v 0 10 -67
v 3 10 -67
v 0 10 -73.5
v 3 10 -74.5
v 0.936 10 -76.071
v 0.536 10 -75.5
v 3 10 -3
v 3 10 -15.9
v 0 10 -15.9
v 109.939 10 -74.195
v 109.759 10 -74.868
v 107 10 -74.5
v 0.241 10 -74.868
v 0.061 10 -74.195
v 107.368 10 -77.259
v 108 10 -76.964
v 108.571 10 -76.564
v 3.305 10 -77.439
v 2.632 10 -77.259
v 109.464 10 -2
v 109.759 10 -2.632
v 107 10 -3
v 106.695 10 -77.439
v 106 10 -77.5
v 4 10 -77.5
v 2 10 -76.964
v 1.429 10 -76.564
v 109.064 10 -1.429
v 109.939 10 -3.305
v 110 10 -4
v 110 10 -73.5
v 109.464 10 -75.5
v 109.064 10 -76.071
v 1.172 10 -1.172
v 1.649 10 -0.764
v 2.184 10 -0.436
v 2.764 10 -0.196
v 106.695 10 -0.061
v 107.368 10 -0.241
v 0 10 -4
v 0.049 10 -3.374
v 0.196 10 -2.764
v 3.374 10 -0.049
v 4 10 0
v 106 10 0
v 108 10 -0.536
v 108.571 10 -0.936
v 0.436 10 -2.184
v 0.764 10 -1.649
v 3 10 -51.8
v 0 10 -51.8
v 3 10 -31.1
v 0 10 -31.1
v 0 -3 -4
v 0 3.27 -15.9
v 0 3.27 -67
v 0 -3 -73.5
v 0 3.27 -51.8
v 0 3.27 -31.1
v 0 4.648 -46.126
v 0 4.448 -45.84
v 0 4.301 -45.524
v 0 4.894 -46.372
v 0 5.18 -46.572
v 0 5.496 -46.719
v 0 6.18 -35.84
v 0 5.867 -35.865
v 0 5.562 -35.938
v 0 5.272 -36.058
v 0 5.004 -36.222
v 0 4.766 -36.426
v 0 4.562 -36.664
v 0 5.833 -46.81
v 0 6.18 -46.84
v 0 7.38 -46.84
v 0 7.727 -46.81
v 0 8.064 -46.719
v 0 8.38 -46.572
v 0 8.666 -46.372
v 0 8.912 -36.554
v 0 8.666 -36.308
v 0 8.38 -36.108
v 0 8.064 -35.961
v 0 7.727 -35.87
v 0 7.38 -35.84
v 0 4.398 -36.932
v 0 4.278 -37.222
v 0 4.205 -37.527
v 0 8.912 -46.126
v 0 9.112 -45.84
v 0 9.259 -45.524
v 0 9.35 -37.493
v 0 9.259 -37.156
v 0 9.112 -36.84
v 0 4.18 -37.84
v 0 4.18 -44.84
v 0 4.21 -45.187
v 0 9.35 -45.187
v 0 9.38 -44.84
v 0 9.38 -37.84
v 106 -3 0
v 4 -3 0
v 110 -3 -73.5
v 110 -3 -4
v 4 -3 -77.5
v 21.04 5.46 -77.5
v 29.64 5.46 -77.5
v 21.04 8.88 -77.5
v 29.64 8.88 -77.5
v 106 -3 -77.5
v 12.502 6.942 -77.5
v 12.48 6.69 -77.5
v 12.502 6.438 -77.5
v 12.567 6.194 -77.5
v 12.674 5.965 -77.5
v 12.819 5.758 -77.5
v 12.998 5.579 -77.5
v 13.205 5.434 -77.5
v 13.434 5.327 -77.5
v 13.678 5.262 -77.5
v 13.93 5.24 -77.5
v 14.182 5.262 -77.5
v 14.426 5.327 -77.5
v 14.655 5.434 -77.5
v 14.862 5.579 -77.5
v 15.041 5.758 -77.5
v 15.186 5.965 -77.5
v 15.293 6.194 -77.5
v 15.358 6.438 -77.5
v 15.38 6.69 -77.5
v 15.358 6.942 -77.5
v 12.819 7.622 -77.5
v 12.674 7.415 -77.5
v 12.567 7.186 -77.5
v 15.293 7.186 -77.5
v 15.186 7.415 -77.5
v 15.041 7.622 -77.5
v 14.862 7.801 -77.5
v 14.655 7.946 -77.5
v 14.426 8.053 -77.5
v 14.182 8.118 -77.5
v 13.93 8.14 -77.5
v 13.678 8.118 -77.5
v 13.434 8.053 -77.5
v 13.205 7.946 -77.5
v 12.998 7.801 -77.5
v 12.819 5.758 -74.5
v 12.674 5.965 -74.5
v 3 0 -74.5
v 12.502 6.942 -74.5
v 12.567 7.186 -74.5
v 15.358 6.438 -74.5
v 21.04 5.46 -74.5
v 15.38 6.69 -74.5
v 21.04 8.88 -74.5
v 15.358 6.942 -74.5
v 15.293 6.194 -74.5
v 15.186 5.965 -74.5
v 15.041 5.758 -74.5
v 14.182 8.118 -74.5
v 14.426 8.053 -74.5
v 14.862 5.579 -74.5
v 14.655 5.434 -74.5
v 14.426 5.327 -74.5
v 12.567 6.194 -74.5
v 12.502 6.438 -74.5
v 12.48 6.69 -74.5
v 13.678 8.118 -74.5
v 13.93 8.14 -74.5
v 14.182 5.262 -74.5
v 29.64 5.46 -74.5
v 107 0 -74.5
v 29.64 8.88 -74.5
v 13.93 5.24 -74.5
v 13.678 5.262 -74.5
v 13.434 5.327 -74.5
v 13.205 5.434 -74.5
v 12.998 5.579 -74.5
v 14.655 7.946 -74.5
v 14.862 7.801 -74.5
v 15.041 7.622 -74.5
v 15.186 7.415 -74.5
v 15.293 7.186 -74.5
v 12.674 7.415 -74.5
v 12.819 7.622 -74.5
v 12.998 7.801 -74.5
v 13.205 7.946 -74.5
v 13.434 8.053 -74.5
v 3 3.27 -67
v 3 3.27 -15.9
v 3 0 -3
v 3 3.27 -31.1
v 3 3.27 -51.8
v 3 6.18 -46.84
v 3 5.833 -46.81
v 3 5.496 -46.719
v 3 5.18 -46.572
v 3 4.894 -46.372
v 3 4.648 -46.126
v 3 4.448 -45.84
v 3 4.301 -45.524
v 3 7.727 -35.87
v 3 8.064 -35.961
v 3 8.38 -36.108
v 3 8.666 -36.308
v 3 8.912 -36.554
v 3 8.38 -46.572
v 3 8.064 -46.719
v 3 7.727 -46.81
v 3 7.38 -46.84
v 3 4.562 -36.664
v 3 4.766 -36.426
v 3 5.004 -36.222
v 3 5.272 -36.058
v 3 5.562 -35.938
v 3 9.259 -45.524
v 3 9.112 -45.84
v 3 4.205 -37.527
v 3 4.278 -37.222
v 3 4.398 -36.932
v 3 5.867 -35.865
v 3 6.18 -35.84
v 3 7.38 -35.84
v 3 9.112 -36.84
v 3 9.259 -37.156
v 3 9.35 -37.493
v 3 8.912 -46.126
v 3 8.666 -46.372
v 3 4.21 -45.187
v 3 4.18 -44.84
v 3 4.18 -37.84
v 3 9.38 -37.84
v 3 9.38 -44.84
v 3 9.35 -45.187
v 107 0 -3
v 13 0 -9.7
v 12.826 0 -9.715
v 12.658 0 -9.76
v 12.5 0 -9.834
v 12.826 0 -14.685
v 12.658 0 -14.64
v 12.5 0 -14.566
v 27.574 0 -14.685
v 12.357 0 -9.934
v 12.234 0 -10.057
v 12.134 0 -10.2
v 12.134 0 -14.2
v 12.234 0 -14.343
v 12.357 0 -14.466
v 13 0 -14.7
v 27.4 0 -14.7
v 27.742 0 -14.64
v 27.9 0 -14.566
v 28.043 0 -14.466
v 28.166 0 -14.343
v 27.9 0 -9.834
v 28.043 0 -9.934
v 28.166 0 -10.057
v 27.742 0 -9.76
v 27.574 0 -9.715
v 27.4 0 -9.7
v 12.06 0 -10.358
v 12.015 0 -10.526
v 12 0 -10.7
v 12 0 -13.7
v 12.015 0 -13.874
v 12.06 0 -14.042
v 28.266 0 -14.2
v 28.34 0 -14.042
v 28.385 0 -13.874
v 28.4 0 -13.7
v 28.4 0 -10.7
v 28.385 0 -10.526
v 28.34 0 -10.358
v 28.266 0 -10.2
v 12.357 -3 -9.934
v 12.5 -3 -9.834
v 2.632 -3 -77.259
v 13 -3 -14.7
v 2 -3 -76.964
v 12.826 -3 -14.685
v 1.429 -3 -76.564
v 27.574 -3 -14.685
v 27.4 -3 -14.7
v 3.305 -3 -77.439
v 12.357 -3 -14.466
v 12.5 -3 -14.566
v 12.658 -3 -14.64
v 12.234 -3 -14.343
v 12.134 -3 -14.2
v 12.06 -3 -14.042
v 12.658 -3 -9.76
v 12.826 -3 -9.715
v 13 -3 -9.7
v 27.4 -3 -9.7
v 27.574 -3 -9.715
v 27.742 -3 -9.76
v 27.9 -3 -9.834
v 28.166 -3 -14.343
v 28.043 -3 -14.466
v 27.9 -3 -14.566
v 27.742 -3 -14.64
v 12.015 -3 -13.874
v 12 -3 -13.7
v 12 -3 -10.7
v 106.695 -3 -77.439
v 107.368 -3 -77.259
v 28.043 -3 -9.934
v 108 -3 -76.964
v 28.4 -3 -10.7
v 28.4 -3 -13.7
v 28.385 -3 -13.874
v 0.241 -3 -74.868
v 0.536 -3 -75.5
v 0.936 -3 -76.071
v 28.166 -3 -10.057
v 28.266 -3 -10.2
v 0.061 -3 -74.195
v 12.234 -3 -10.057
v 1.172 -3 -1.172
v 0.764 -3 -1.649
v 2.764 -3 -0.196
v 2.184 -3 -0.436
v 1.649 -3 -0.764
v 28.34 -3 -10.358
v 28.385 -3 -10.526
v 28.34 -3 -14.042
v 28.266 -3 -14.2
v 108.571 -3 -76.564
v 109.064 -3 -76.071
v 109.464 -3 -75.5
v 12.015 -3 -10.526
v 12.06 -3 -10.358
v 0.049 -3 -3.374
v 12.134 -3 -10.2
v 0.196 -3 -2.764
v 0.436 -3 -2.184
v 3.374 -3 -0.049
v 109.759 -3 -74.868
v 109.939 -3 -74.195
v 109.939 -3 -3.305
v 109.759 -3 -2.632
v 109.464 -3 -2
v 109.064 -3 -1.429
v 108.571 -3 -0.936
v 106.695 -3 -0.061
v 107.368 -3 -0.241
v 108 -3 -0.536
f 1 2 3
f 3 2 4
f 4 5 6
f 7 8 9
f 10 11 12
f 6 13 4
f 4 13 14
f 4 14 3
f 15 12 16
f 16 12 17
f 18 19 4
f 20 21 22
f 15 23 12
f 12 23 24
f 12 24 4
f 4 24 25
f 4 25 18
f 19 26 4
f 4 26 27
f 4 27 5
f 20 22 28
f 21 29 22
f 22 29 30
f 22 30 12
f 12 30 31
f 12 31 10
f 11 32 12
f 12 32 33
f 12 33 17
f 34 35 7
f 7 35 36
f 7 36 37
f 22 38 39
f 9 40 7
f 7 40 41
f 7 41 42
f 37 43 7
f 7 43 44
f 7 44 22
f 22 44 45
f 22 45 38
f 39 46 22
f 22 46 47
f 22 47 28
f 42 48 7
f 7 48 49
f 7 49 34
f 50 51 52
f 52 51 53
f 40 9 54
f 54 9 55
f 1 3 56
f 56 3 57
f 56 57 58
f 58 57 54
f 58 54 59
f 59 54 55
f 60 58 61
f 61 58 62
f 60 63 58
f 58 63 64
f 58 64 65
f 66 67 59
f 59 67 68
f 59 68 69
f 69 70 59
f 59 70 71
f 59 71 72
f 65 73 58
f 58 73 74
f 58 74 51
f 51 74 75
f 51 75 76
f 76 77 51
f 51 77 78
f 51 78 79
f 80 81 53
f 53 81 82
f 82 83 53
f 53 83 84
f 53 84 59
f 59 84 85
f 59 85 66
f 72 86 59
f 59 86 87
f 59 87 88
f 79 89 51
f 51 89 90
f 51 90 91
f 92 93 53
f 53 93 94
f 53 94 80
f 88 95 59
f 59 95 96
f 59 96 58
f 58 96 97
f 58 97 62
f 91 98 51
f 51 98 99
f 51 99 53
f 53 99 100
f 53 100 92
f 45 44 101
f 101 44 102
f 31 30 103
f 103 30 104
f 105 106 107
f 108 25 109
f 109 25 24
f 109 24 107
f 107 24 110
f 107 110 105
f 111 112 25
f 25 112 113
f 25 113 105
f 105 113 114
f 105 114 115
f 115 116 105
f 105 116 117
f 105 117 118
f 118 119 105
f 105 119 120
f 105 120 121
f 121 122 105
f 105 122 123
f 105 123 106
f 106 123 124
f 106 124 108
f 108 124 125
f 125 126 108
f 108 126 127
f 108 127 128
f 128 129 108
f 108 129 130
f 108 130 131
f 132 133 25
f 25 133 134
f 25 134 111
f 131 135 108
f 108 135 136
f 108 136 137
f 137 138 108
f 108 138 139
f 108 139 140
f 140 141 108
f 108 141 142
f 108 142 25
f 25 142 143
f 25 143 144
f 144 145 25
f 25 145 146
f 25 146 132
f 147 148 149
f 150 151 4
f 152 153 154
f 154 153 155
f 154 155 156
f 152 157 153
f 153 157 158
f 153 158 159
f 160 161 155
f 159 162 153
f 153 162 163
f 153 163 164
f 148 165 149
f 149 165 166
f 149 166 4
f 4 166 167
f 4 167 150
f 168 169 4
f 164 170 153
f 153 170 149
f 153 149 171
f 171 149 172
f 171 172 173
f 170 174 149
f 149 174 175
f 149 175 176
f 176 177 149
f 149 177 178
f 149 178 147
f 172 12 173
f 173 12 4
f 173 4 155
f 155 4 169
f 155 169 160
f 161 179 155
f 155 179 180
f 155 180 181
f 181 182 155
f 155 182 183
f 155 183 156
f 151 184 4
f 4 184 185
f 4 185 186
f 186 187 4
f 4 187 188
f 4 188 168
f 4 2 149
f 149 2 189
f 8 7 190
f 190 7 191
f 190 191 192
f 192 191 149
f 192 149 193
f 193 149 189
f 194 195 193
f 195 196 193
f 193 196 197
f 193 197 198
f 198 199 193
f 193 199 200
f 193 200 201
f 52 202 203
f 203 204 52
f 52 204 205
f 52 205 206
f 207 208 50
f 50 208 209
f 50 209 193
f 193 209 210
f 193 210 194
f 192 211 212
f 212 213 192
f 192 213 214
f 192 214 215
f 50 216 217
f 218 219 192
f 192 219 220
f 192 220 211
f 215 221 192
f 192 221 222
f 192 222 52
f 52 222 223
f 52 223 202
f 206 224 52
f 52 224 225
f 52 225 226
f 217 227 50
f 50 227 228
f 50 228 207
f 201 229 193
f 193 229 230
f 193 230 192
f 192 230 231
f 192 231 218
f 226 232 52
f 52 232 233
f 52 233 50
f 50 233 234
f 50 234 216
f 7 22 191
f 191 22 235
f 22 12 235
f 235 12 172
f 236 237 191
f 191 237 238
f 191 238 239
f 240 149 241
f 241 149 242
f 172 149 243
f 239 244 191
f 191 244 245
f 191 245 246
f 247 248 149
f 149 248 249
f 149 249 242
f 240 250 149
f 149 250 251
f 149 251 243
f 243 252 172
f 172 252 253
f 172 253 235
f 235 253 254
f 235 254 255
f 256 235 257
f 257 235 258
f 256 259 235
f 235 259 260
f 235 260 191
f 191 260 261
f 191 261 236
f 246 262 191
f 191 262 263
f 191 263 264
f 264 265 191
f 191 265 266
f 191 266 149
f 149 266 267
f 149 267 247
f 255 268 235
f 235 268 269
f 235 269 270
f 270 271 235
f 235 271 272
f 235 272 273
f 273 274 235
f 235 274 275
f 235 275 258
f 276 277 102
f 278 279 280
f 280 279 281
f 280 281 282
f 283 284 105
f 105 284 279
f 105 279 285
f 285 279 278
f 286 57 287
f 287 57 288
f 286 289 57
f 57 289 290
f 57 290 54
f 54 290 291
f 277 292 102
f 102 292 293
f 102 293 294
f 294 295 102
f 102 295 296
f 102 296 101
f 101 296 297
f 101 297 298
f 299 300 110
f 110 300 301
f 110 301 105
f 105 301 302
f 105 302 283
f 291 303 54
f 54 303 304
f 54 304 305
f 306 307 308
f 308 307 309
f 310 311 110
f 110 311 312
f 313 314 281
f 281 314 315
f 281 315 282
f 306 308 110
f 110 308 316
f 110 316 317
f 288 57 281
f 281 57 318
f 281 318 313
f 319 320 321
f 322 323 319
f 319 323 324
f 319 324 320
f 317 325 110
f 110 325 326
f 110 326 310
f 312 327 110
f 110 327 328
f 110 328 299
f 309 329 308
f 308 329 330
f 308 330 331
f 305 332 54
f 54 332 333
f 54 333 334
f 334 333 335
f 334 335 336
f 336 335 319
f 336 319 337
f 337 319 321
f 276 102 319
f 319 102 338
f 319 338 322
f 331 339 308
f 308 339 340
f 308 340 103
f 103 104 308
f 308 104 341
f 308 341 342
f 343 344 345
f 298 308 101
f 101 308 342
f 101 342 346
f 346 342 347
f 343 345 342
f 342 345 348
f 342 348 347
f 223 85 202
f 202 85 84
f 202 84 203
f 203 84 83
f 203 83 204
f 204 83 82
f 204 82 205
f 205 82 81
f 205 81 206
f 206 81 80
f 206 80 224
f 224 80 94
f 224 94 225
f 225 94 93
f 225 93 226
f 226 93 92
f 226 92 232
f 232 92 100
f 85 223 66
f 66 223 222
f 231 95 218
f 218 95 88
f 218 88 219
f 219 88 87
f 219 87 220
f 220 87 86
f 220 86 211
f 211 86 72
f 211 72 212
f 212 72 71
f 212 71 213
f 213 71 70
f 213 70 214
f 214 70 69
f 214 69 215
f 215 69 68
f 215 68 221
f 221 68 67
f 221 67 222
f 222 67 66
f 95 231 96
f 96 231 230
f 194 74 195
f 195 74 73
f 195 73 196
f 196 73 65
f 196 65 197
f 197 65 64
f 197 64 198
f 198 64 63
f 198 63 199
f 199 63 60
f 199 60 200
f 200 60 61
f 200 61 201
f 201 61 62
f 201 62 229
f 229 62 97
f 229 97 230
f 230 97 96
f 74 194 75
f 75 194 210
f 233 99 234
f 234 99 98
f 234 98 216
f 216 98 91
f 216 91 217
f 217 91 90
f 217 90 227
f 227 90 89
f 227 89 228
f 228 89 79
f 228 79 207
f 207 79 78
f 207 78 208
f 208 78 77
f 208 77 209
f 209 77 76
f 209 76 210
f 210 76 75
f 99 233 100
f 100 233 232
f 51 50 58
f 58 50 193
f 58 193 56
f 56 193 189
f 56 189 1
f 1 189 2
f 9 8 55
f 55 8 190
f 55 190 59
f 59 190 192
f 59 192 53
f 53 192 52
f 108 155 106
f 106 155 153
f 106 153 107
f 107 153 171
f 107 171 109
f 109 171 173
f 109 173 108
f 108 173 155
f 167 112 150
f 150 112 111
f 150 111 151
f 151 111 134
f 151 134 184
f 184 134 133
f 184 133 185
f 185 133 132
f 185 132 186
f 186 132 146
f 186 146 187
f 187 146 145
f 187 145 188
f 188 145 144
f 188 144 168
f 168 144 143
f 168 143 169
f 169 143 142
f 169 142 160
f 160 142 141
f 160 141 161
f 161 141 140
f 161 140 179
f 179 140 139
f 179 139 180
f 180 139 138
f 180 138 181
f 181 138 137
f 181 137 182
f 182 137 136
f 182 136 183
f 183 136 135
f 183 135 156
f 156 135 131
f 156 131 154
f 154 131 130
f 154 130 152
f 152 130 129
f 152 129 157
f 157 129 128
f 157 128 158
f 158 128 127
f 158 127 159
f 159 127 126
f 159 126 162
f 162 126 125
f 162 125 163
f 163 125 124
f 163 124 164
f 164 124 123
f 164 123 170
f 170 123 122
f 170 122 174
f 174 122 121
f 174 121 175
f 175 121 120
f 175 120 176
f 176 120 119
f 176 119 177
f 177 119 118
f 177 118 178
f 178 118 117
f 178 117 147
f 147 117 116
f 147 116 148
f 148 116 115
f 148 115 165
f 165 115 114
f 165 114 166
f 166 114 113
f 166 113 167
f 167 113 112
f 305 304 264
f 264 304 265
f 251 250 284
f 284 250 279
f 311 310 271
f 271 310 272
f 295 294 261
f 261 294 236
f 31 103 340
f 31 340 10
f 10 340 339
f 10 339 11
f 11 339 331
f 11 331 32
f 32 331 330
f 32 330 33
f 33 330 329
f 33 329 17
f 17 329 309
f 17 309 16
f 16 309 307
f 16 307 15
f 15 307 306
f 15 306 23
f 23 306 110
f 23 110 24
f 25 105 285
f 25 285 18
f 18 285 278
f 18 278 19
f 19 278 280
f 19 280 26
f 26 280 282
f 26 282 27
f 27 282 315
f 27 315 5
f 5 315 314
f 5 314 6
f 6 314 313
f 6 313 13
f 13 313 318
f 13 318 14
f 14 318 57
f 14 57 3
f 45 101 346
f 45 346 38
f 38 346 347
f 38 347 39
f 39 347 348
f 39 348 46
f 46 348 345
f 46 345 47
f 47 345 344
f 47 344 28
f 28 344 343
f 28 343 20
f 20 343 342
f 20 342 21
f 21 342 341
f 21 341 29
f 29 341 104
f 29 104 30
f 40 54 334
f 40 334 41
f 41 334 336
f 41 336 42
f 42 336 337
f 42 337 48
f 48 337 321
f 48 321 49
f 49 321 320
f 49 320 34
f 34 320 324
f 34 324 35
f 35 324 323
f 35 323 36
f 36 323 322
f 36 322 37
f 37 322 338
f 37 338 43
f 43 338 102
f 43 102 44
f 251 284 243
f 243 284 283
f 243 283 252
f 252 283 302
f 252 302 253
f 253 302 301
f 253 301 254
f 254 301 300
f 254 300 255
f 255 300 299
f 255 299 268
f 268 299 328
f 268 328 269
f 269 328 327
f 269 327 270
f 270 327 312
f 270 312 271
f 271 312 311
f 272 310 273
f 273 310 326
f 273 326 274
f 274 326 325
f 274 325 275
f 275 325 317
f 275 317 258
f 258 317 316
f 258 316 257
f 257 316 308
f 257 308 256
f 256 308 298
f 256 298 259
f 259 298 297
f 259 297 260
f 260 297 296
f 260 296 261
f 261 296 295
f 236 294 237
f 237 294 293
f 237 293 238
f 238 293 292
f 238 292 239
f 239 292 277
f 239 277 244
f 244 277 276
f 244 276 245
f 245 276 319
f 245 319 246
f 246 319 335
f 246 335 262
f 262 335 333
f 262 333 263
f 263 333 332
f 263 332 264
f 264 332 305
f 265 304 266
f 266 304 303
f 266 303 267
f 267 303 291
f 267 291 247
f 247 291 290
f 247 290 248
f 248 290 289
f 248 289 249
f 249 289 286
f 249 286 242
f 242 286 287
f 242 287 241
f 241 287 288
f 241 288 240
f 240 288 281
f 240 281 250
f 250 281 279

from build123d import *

# Parameters (mm, degrees)
SKETCH1_W               = 110
SKETCH1_H               = 77.5
SKETCH1_W_2             = 104
SKETCH1_H_2             = 71.5
BOSS_EXTRUDE1_DEPTH     = 10
SKETCH1_2_W             = 110
SKETCH1_2_H             = 77.5
BOSS_EXTRUDE2_DEPTH     = 3
CUT_EXTRUDE1_REACH      = 136.931
SKETCH3_W               = 15.2
SKETCH3_H               = 6.73
CUT_EXTRUDE2_REACH      = 136.931
SKETCH4_R               = 1.45
SKETCH4_W               = 8.6
SKETCH4_H               = 3.42
CUT_EXTRUDE3_DEPTH      = 135.930537685
CUT_EXTRUDE3_DEPTH_BACK = 135.930537685
SKETCH5_W               = 16.4
SKETCH5_H               = 5
FILLET1_R               = 4
FILLET2_R               = 1


with BuildPart() as part:
    # Sketch1 → Boss-Extrude1 (new body)
    with BuildSketch(Plane(origin=(0, 0, 0), x_dir=(1, 0, 0), z_dir=(0, 1, 0))):
        with Locations((55, 38.75)):
            Rectangle(SKETCH1_W, SKETCH1_H)
        with Locations((55, 38.75)):
            Rectangle(SKETCH1_W_2, SKETCH1_H_2, mode=Mode.SUBTRACT)
    extrude(amount=BOSS_EXTRUDE1_DEPTH)

    # Sketch1<2> → Boss-Extrude2 (add)
    with BuildSketch(Plane(origin=(0, 0, 0), x_dir=(1, 0, 0), z_dir=(0, 1, 0))):
        with Locations((55, 38.75)):
            Rectangle(SKETCH1_2_W, SKETCH1_2_H)
    extrude(amount=-BOSS_EXTRUDE2_DEPTH)

    # Sketch3 → Cut-Extrude1 (cut, up to next)
    with BuildSketch(Plane.ZY, mode=Mode.PRIVATE) as cut_extrude1_sk1:
        with Locations((-23.5, 6.635)):
            Rectangle(SKETCH3_W, SKETCH3_H)
    cut_extrude1_tool1 = extrude(cut_extrude1_sk1.sketch, amount=-CUT_EXTRUDE1_REACH, mode=Mode.PRIVATE) & part.part
    # Sketch3 → Cut-Extrude1 (cut, up to next)
    with BuildSketch(Plane.ZY, mode=Mode.PRIVATE) as cut_extrude1_sk2:
        with Locations((-59.4, 6.635)):
            Rectangle(SKETCH3_W, SKETCH3_H)
    cut_extrude1_tool2 = extrude(cut_extrude1_sk2.sketch, amount=-CUT_EXTRUDE1_REACH, mode=Mode.PRIVATE) & part.part
    # Sketch3 → Cut-Extrude1 (cut, up to next)
    with BuildSketch(Plane.ZY, mode=Mode.PRIVATE) as cut_extrude1_sk3:
        with BuildLine():
            Line((-37.84, 9.38), (-44.840000134, 9.38))
            ThreePointArc((-44.840000134, 9.38), (-46.254213696, 8.794213562), (-46.840000134, 7.38))
            Line((-46.840000134, 7.38), (-46.840000134, 6.18))
            ThreePointArc((-46.840000134, 6.18), (-46.254213696, 4.765786438), (-44.840000134, 4.18))
            Line((-44.840000134, 4.18), (-37.84, 4.18))
            ThreePointArc((-37.84, 4.18), (-36.425786438, 4.765786438), (-35.84, 6.18))
            Line((-35.84, 6.18), (-35.84, 7.38))
            ThreePointArc((-35.84, 7.38), (-36.425786438, 8.794213562), (-37.84, 9.38))
        make_face()
    cut_extrude1_tool3 = extrude(cut_extrude1_sk3.sketch, amount=-CUT_EXTRUDE1_REACH, mode=Mode.PRIVATE) & part.part
    add(cut_extrude1_tool1.solids().sort_by_distance((0, 6.635, -23.5))[0], mode=Mode.SUBTRACT)
    add(cut_extrude1_tool2.solids().sort_by_distance((0, 6.635, -59.4))[0], mode=Mode.SUBTRACT)
    add(cut_extrude1_tool3.solids().sort_by_distance((0, 6.78, -41.34))[0], mode=Mode.SUBTRACT)

    # Sketch4 → Cut-Extrude2 (cut, up to next)
    with BuildSketch(Plane(origin=(0, 0, -77.5), x_dir=(-1, 0, 0), z_dir=(0, 0, -1)), mode=Mode.PRIVATE) as cut_extrude2_sk1:
        with Locations((-13.93, 6.69)):
            Circle(SKETCH4_R)
    cut_extrude2_tool1 = extrude(cut_extrude2_sk1.sketch, amount=-CUT_EXTRUDE2_REACH, mode=Mode.PRIVATE) & part.part
    # Sketch4 → Cut-Extrude2 (cut, up to next)
    with BuildSketch(Plane(origin=(0, 0, -77.5), x_dir=(-1, 0, 0), z_dir=(0, 0, -1)), mode=Mode.PRIVATE) as cut_extrude2_sk2:
        with Locations((-25.34, 7.17)):
            Rectangle(SKETCH4_W, SKETCH4_H)
    cut_extrude2_tool2 = extrude(cut_extrude2_sk2.sketch, amount=-CUT_EXTRUDE2_REACH, mode=Mode.PRIVATE) & part.part
    add(cut_extrude2_tool1.solids().sort_by_distance((13.93, 6.69, -77.5))[0], mode=Mode.SUBTRACT)
    add(cut_extrude2_tool2.solids().sort_by_distance((25.34, 7.17, -77.5))[0], mode=Mode.SUBTRACT)

    # Sketch5 → Cut-Extrude3 (cut, two sides: drawn at the far end of the back side and taken through both)
    with BuildSketch(Plane(origin=(0, 0, 0), x_dir=(1, 0, 0), z_dir=(0, 1, 0)).offset(-CUT_EXTRUDE3_DEPTH_BACK)):
        with Locations((20.2, 12.2)):
            Rectangle(SKETCH5_W, SKETCH5_H)
    extrude(amount=CUT_EXTRUDE3_DEPTH + CUT_EXTRUDE3_DEPTH_BACK, mode=Mode.SUBTRACT)

    # Fillet1
    fillet1_edges = [part.edges().sort_by_distance(p)[0] for p in [
        (110, 3.5, -77.5),
        (0, 3.5, -77.5),
        (110, 3.5, 0),
        (0, 3.5, 0),
    ]]
    fillet(fillet1_edges, radius=FILLET1_R)

    # Fillet2
    fillet2_edges = [part.edges().sort_by_distance(p)[0] for p in [
        (28.4, -1.5, -14.7),
        (28.4, -1.5, -9.7),
        (12, -1.5, -9.7),
        (12, -1.5, -14.7),
    ]]
    fillet(fillet2_edges, radius=FILLET2_R)


solid = part.part
